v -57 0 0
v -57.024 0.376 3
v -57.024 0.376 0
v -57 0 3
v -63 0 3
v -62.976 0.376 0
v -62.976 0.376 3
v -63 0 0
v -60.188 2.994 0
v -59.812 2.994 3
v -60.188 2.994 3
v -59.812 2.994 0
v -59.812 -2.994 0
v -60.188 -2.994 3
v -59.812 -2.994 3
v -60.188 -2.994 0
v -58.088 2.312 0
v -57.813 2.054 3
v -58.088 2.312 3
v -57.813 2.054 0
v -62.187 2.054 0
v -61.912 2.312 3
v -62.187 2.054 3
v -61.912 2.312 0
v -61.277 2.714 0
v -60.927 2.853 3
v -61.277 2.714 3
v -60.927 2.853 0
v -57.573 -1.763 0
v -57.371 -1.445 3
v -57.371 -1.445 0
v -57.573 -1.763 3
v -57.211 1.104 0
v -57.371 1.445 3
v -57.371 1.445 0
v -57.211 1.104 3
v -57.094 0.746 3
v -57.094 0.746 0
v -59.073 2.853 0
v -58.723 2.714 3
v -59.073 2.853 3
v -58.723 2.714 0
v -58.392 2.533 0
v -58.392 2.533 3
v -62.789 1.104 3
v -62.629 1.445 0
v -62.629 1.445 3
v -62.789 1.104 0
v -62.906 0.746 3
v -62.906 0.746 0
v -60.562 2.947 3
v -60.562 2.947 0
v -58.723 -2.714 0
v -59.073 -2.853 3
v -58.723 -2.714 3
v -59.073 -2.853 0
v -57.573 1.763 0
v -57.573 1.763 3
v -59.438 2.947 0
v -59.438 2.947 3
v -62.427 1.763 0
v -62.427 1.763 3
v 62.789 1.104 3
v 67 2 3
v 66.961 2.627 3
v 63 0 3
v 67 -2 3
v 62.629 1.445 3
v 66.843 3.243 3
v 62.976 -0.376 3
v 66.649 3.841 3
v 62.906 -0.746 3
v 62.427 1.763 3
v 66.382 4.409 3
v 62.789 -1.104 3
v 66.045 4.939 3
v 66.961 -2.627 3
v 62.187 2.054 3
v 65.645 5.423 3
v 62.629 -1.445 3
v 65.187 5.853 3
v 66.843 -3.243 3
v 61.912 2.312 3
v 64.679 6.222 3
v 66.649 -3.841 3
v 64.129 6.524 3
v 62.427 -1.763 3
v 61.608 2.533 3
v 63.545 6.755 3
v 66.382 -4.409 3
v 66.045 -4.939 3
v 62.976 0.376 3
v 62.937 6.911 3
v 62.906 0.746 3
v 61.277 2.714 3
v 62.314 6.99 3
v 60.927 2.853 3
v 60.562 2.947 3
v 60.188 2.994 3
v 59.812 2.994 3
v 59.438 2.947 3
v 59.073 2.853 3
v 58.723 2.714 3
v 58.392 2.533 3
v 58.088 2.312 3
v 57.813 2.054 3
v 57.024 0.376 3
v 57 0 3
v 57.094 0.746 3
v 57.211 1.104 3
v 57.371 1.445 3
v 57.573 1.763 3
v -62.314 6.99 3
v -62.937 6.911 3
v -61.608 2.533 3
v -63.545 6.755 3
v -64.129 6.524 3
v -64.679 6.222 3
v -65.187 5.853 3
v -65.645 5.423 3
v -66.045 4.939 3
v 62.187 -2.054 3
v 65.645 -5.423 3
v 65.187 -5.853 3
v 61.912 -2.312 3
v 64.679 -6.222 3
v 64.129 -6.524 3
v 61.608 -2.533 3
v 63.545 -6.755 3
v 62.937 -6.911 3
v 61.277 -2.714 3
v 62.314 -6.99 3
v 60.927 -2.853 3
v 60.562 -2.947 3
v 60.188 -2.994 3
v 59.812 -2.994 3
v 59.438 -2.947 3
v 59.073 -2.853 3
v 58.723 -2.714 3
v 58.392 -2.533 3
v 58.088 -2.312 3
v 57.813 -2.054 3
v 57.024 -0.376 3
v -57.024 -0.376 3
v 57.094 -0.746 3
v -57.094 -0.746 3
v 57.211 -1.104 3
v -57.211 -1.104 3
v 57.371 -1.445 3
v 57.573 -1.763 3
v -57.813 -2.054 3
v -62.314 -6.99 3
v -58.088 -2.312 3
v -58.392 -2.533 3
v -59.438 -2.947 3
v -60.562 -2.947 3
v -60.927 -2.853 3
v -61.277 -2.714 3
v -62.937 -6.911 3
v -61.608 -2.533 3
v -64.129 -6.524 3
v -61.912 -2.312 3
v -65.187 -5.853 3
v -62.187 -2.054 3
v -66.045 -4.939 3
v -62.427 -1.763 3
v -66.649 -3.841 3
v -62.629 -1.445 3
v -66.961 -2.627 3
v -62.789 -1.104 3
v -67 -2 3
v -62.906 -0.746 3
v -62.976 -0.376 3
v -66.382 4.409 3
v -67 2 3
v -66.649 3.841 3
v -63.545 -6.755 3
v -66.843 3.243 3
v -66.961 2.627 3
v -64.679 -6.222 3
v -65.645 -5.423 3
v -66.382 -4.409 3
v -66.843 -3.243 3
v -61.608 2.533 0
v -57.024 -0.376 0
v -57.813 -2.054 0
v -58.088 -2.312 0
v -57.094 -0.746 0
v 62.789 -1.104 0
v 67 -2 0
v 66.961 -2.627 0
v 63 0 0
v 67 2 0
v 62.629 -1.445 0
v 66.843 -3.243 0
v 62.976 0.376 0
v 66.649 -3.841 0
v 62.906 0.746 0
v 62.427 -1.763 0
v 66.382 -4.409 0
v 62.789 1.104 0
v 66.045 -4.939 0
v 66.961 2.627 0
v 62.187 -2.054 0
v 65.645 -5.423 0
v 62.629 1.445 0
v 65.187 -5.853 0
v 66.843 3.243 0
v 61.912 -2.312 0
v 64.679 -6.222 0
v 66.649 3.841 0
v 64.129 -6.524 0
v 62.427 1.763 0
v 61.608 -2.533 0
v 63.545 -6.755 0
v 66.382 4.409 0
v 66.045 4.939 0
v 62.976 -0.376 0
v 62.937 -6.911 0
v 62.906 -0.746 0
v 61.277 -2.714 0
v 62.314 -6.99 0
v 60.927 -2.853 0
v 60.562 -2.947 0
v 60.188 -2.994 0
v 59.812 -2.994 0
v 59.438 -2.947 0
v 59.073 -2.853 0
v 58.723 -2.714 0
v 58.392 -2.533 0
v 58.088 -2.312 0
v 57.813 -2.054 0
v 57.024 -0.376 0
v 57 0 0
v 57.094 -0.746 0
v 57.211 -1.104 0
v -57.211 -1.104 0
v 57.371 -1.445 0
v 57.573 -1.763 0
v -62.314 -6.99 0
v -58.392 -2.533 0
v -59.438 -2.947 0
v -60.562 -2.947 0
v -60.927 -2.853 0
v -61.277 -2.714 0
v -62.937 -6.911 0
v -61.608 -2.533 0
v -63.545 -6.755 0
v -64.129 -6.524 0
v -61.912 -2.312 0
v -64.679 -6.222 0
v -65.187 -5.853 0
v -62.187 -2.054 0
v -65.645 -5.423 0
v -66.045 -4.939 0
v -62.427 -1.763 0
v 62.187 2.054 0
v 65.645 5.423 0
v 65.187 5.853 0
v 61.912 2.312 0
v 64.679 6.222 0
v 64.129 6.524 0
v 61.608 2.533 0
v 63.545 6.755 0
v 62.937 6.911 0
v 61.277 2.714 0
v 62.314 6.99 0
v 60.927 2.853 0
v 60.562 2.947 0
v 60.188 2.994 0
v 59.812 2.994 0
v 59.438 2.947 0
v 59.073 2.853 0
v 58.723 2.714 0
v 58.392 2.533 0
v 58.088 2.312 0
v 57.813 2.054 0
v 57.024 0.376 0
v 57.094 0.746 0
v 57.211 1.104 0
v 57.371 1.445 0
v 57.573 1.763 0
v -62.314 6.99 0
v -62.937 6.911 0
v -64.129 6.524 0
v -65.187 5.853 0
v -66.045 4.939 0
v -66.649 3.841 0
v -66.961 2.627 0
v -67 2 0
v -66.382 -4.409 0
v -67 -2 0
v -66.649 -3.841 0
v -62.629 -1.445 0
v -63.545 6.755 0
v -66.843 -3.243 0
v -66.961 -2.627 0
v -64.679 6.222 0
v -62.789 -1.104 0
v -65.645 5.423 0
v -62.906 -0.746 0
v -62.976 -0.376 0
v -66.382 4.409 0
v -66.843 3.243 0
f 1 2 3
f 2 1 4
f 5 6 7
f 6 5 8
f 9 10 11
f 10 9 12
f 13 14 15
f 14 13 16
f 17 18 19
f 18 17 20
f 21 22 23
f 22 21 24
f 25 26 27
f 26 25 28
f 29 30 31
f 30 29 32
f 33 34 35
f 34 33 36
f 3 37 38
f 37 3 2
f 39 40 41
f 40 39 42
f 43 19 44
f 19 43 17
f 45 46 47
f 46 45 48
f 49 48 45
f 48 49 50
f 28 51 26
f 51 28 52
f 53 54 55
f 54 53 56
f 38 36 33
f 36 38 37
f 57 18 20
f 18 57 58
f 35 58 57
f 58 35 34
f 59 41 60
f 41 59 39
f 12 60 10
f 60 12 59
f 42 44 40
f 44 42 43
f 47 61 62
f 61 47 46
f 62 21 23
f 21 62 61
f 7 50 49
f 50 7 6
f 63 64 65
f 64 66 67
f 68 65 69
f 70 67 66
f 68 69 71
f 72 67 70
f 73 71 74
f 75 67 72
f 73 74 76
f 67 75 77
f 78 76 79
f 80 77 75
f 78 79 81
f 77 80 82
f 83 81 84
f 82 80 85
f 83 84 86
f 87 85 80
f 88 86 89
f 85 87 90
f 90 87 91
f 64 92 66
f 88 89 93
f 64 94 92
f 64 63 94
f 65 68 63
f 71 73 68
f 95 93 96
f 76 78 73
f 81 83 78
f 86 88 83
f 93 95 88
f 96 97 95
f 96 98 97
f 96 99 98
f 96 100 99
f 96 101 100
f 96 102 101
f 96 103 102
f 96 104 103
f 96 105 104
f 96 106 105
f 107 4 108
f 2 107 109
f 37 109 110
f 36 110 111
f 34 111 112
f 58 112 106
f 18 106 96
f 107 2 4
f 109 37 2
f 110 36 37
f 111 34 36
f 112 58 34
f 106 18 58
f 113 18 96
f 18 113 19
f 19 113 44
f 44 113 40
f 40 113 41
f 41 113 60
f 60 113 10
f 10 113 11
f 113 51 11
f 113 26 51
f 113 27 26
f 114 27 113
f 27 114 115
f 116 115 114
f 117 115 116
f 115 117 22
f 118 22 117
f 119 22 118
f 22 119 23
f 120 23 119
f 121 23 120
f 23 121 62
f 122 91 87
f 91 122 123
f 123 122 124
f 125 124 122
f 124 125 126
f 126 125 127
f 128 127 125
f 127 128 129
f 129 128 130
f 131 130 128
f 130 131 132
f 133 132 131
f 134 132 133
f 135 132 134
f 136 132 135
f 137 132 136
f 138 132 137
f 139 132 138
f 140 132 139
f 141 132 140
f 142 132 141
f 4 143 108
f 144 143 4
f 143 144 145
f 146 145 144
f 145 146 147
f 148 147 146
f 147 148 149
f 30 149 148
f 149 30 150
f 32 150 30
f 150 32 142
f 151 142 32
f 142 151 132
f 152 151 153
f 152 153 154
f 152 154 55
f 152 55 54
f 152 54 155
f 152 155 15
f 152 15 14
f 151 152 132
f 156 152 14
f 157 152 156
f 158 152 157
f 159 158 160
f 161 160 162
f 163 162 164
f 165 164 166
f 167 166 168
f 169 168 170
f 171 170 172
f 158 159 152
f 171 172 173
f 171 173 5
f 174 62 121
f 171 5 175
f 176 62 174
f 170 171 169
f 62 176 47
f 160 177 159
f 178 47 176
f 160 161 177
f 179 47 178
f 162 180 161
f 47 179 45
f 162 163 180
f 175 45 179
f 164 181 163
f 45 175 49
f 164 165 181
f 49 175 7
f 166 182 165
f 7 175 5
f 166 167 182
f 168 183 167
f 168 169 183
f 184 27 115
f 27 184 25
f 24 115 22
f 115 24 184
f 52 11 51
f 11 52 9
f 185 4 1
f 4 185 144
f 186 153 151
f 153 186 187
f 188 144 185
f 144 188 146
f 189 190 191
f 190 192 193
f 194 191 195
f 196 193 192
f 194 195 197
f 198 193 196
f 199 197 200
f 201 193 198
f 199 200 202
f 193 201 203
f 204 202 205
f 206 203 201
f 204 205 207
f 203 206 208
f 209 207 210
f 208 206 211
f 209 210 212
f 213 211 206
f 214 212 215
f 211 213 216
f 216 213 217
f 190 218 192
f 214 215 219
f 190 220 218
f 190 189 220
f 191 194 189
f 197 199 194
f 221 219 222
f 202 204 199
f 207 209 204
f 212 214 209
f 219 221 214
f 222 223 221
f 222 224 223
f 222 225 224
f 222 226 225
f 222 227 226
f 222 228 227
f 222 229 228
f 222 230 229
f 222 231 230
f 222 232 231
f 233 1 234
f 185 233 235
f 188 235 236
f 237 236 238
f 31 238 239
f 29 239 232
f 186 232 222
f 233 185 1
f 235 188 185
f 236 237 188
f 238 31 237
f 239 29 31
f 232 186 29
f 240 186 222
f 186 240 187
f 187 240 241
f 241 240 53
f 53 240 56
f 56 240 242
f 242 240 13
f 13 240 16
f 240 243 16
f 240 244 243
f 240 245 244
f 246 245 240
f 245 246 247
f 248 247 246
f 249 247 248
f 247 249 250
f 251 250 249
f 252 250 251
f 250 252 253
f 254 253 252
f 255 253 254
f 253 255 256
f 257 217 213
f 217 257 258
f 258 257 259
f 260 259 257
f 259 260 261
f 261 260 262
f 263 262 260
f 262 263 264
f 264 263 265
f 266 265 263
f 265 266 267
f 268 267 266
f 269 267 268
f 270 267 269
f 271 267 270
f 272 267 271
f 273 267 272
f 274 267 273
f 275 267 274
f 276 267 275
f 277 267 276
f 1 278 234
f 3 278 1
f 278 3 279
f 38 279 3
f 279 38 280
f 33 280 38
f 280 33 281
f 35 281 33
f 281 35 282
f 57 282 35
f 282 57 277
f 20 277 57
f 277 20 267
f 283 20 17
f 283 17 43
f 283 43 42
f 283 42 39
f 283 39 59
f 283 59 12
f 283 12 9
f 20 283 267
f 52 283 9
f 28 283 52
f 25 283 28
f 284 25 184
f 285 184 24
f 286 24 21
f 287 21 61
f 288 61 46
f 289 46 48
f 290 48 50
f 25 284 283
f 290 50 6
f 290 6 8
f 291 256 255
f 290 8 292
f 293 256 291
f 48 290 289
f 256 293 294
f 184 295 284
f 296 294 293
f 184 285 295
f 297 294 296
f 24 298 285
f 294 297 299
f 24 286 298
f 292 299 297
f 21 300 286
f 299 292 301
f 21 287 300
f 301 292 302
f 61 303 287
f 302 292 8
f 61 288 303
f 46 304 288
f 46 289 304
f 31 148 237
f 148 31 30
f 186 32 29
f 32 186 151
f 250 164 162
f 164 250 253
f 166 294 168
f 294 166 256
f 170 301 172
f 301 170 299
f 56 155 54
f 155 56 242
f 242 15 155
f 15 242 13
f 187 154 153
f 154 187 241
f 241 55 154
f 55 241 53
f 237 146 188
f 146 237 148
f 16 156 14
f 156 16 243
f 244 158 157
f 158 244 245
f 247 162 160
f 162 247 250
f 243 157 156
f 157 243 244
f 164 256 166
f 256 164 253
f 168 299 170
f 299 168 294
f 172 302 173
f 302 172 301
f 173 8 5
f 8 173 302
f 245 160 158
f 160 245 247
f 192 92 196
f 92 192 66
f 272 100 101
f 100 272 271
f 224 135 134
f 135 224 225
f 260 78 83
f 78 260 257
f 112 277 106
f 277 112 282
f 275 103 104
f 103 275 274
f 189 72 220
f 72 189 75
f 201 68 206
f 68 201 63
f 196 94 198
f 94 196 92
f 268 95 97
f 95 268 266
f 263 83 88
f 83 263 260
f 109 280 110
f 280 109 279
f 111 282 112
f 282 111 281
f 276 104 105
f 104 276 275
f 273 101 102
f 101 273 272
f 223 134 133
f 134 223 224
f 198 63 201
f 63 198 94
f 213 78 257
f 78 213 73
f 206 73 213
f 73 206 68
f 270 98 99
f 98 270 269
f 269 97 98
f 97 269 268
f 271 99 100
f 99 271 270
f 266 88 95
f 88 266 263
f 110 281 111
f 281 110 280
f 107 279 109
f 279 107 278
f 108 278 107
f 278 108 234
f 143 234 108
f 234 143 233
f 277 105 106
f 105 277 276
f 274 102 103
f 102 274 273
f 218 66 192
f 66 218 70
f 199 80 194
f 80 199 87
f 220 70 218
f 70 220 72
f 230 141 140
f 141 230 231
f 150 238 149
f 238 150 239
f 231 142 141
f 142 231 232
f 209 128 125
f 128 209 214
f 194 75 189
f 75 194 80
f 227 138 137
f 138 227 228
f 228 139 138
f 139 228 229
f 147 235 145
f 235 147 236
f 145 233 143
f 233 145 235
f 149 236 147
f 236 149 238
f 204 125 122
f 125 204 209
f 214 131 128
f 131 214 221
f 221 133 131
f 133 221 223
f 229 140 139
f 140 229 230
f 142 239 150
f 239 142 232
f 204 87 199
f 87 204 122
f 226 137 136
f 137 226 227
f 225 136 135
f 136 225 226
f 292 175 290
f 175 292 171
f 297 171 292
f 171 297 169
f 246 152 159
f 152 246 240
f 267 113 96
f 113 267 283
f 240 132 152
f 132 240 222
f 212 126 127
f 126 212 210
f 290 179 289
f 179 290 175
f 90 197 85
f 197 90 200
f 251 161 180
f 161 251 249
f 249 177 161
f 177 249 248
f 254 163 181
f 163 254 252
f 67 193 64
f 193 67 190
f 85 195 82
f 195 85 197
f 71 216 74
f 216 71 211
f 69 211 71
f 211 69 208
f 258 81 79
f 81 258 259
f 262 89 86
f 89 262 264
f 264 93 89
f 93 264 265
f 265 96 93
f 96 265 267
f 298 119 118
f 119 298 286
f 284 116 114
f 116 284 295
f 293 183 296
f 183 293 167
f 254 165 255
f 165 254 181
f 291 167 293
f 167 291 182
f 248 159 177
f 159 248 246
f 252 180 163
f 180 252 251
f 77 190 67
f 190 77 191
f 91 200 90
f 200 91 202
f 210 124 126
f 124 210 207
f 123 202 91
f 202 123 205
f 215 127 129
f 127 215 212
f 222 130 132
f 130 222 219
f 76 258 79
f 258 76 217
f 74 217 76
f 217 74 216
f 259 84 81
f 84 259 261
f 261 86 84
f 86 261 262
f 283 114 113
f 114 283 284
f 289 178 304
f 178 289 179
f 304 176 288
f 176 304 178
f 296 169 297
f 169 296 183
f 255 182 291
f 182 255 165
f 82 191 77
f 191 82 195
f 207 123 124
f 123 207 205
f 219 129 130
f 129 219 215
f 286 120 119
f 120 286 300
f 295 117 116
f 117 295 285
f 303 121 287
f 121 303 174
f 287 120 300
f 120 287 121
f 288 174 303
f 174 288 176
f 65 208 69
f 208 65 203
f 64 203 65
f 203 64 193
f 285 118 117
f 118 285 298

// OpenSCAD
$fn = 50;


difference() {
	union() {
		hull() {
			translate(v = [-62.0000000000, 2.0000000000, 0]) {
				cylinder(h = 3, r = 5);
			}
			translate(v = [62.0000000000, 2.0000000000, 0]) {
				cylinder(h = 3, r = 5);
			}
			translate(v = [-62.0000000000, -2.0000000000, 0]) {
				cylinder(h = 3, r = 5);
			}
			translate(v = [62.0000000000, -2.0000000000, 0]) {
				cylinder(h = 3, r = 5);
			}
		}
	}
	union() {
		translate(v = [-60.0000000000, 0.0000000000, 0]) {
			cylinder(h = 3, r = 3.0000000000);
		}
		translate(v = [60.0000000000, 0.0000000000, 0]) {
			cylinder(h = 3, r = 3.0000000000);
		}
		translate(v = [-60.0000000000, 0.0000000000, 0]) {
			cylinder(h = 3, r = 1.5000000000);
		}
		translate(v = [60.0000000000, 0.0000000000, 0]) {
			cylinder(h = 3, r = 1.5000000000);
		}
		translate(v = [-60.0000000000, 0.0000000000, 0]) {
			cylinder(h = 3, r = 1.5000000000);
		}
		translate(v = [60.0000000000, 0.0000000000, 0]) {
			cylinder(h = 3, r = 1.5000000000);
		}
		translate(v = [-60.0000000000, 0.0000000000, 0]) {
			cylinder(h = 3, r = 1.5000000000);
		}
		translate(v = [60.0000000000, 0.0000000000, 0]) {
			cylinder(h = 3, r = 1.5000000000);
		}
	}
}
